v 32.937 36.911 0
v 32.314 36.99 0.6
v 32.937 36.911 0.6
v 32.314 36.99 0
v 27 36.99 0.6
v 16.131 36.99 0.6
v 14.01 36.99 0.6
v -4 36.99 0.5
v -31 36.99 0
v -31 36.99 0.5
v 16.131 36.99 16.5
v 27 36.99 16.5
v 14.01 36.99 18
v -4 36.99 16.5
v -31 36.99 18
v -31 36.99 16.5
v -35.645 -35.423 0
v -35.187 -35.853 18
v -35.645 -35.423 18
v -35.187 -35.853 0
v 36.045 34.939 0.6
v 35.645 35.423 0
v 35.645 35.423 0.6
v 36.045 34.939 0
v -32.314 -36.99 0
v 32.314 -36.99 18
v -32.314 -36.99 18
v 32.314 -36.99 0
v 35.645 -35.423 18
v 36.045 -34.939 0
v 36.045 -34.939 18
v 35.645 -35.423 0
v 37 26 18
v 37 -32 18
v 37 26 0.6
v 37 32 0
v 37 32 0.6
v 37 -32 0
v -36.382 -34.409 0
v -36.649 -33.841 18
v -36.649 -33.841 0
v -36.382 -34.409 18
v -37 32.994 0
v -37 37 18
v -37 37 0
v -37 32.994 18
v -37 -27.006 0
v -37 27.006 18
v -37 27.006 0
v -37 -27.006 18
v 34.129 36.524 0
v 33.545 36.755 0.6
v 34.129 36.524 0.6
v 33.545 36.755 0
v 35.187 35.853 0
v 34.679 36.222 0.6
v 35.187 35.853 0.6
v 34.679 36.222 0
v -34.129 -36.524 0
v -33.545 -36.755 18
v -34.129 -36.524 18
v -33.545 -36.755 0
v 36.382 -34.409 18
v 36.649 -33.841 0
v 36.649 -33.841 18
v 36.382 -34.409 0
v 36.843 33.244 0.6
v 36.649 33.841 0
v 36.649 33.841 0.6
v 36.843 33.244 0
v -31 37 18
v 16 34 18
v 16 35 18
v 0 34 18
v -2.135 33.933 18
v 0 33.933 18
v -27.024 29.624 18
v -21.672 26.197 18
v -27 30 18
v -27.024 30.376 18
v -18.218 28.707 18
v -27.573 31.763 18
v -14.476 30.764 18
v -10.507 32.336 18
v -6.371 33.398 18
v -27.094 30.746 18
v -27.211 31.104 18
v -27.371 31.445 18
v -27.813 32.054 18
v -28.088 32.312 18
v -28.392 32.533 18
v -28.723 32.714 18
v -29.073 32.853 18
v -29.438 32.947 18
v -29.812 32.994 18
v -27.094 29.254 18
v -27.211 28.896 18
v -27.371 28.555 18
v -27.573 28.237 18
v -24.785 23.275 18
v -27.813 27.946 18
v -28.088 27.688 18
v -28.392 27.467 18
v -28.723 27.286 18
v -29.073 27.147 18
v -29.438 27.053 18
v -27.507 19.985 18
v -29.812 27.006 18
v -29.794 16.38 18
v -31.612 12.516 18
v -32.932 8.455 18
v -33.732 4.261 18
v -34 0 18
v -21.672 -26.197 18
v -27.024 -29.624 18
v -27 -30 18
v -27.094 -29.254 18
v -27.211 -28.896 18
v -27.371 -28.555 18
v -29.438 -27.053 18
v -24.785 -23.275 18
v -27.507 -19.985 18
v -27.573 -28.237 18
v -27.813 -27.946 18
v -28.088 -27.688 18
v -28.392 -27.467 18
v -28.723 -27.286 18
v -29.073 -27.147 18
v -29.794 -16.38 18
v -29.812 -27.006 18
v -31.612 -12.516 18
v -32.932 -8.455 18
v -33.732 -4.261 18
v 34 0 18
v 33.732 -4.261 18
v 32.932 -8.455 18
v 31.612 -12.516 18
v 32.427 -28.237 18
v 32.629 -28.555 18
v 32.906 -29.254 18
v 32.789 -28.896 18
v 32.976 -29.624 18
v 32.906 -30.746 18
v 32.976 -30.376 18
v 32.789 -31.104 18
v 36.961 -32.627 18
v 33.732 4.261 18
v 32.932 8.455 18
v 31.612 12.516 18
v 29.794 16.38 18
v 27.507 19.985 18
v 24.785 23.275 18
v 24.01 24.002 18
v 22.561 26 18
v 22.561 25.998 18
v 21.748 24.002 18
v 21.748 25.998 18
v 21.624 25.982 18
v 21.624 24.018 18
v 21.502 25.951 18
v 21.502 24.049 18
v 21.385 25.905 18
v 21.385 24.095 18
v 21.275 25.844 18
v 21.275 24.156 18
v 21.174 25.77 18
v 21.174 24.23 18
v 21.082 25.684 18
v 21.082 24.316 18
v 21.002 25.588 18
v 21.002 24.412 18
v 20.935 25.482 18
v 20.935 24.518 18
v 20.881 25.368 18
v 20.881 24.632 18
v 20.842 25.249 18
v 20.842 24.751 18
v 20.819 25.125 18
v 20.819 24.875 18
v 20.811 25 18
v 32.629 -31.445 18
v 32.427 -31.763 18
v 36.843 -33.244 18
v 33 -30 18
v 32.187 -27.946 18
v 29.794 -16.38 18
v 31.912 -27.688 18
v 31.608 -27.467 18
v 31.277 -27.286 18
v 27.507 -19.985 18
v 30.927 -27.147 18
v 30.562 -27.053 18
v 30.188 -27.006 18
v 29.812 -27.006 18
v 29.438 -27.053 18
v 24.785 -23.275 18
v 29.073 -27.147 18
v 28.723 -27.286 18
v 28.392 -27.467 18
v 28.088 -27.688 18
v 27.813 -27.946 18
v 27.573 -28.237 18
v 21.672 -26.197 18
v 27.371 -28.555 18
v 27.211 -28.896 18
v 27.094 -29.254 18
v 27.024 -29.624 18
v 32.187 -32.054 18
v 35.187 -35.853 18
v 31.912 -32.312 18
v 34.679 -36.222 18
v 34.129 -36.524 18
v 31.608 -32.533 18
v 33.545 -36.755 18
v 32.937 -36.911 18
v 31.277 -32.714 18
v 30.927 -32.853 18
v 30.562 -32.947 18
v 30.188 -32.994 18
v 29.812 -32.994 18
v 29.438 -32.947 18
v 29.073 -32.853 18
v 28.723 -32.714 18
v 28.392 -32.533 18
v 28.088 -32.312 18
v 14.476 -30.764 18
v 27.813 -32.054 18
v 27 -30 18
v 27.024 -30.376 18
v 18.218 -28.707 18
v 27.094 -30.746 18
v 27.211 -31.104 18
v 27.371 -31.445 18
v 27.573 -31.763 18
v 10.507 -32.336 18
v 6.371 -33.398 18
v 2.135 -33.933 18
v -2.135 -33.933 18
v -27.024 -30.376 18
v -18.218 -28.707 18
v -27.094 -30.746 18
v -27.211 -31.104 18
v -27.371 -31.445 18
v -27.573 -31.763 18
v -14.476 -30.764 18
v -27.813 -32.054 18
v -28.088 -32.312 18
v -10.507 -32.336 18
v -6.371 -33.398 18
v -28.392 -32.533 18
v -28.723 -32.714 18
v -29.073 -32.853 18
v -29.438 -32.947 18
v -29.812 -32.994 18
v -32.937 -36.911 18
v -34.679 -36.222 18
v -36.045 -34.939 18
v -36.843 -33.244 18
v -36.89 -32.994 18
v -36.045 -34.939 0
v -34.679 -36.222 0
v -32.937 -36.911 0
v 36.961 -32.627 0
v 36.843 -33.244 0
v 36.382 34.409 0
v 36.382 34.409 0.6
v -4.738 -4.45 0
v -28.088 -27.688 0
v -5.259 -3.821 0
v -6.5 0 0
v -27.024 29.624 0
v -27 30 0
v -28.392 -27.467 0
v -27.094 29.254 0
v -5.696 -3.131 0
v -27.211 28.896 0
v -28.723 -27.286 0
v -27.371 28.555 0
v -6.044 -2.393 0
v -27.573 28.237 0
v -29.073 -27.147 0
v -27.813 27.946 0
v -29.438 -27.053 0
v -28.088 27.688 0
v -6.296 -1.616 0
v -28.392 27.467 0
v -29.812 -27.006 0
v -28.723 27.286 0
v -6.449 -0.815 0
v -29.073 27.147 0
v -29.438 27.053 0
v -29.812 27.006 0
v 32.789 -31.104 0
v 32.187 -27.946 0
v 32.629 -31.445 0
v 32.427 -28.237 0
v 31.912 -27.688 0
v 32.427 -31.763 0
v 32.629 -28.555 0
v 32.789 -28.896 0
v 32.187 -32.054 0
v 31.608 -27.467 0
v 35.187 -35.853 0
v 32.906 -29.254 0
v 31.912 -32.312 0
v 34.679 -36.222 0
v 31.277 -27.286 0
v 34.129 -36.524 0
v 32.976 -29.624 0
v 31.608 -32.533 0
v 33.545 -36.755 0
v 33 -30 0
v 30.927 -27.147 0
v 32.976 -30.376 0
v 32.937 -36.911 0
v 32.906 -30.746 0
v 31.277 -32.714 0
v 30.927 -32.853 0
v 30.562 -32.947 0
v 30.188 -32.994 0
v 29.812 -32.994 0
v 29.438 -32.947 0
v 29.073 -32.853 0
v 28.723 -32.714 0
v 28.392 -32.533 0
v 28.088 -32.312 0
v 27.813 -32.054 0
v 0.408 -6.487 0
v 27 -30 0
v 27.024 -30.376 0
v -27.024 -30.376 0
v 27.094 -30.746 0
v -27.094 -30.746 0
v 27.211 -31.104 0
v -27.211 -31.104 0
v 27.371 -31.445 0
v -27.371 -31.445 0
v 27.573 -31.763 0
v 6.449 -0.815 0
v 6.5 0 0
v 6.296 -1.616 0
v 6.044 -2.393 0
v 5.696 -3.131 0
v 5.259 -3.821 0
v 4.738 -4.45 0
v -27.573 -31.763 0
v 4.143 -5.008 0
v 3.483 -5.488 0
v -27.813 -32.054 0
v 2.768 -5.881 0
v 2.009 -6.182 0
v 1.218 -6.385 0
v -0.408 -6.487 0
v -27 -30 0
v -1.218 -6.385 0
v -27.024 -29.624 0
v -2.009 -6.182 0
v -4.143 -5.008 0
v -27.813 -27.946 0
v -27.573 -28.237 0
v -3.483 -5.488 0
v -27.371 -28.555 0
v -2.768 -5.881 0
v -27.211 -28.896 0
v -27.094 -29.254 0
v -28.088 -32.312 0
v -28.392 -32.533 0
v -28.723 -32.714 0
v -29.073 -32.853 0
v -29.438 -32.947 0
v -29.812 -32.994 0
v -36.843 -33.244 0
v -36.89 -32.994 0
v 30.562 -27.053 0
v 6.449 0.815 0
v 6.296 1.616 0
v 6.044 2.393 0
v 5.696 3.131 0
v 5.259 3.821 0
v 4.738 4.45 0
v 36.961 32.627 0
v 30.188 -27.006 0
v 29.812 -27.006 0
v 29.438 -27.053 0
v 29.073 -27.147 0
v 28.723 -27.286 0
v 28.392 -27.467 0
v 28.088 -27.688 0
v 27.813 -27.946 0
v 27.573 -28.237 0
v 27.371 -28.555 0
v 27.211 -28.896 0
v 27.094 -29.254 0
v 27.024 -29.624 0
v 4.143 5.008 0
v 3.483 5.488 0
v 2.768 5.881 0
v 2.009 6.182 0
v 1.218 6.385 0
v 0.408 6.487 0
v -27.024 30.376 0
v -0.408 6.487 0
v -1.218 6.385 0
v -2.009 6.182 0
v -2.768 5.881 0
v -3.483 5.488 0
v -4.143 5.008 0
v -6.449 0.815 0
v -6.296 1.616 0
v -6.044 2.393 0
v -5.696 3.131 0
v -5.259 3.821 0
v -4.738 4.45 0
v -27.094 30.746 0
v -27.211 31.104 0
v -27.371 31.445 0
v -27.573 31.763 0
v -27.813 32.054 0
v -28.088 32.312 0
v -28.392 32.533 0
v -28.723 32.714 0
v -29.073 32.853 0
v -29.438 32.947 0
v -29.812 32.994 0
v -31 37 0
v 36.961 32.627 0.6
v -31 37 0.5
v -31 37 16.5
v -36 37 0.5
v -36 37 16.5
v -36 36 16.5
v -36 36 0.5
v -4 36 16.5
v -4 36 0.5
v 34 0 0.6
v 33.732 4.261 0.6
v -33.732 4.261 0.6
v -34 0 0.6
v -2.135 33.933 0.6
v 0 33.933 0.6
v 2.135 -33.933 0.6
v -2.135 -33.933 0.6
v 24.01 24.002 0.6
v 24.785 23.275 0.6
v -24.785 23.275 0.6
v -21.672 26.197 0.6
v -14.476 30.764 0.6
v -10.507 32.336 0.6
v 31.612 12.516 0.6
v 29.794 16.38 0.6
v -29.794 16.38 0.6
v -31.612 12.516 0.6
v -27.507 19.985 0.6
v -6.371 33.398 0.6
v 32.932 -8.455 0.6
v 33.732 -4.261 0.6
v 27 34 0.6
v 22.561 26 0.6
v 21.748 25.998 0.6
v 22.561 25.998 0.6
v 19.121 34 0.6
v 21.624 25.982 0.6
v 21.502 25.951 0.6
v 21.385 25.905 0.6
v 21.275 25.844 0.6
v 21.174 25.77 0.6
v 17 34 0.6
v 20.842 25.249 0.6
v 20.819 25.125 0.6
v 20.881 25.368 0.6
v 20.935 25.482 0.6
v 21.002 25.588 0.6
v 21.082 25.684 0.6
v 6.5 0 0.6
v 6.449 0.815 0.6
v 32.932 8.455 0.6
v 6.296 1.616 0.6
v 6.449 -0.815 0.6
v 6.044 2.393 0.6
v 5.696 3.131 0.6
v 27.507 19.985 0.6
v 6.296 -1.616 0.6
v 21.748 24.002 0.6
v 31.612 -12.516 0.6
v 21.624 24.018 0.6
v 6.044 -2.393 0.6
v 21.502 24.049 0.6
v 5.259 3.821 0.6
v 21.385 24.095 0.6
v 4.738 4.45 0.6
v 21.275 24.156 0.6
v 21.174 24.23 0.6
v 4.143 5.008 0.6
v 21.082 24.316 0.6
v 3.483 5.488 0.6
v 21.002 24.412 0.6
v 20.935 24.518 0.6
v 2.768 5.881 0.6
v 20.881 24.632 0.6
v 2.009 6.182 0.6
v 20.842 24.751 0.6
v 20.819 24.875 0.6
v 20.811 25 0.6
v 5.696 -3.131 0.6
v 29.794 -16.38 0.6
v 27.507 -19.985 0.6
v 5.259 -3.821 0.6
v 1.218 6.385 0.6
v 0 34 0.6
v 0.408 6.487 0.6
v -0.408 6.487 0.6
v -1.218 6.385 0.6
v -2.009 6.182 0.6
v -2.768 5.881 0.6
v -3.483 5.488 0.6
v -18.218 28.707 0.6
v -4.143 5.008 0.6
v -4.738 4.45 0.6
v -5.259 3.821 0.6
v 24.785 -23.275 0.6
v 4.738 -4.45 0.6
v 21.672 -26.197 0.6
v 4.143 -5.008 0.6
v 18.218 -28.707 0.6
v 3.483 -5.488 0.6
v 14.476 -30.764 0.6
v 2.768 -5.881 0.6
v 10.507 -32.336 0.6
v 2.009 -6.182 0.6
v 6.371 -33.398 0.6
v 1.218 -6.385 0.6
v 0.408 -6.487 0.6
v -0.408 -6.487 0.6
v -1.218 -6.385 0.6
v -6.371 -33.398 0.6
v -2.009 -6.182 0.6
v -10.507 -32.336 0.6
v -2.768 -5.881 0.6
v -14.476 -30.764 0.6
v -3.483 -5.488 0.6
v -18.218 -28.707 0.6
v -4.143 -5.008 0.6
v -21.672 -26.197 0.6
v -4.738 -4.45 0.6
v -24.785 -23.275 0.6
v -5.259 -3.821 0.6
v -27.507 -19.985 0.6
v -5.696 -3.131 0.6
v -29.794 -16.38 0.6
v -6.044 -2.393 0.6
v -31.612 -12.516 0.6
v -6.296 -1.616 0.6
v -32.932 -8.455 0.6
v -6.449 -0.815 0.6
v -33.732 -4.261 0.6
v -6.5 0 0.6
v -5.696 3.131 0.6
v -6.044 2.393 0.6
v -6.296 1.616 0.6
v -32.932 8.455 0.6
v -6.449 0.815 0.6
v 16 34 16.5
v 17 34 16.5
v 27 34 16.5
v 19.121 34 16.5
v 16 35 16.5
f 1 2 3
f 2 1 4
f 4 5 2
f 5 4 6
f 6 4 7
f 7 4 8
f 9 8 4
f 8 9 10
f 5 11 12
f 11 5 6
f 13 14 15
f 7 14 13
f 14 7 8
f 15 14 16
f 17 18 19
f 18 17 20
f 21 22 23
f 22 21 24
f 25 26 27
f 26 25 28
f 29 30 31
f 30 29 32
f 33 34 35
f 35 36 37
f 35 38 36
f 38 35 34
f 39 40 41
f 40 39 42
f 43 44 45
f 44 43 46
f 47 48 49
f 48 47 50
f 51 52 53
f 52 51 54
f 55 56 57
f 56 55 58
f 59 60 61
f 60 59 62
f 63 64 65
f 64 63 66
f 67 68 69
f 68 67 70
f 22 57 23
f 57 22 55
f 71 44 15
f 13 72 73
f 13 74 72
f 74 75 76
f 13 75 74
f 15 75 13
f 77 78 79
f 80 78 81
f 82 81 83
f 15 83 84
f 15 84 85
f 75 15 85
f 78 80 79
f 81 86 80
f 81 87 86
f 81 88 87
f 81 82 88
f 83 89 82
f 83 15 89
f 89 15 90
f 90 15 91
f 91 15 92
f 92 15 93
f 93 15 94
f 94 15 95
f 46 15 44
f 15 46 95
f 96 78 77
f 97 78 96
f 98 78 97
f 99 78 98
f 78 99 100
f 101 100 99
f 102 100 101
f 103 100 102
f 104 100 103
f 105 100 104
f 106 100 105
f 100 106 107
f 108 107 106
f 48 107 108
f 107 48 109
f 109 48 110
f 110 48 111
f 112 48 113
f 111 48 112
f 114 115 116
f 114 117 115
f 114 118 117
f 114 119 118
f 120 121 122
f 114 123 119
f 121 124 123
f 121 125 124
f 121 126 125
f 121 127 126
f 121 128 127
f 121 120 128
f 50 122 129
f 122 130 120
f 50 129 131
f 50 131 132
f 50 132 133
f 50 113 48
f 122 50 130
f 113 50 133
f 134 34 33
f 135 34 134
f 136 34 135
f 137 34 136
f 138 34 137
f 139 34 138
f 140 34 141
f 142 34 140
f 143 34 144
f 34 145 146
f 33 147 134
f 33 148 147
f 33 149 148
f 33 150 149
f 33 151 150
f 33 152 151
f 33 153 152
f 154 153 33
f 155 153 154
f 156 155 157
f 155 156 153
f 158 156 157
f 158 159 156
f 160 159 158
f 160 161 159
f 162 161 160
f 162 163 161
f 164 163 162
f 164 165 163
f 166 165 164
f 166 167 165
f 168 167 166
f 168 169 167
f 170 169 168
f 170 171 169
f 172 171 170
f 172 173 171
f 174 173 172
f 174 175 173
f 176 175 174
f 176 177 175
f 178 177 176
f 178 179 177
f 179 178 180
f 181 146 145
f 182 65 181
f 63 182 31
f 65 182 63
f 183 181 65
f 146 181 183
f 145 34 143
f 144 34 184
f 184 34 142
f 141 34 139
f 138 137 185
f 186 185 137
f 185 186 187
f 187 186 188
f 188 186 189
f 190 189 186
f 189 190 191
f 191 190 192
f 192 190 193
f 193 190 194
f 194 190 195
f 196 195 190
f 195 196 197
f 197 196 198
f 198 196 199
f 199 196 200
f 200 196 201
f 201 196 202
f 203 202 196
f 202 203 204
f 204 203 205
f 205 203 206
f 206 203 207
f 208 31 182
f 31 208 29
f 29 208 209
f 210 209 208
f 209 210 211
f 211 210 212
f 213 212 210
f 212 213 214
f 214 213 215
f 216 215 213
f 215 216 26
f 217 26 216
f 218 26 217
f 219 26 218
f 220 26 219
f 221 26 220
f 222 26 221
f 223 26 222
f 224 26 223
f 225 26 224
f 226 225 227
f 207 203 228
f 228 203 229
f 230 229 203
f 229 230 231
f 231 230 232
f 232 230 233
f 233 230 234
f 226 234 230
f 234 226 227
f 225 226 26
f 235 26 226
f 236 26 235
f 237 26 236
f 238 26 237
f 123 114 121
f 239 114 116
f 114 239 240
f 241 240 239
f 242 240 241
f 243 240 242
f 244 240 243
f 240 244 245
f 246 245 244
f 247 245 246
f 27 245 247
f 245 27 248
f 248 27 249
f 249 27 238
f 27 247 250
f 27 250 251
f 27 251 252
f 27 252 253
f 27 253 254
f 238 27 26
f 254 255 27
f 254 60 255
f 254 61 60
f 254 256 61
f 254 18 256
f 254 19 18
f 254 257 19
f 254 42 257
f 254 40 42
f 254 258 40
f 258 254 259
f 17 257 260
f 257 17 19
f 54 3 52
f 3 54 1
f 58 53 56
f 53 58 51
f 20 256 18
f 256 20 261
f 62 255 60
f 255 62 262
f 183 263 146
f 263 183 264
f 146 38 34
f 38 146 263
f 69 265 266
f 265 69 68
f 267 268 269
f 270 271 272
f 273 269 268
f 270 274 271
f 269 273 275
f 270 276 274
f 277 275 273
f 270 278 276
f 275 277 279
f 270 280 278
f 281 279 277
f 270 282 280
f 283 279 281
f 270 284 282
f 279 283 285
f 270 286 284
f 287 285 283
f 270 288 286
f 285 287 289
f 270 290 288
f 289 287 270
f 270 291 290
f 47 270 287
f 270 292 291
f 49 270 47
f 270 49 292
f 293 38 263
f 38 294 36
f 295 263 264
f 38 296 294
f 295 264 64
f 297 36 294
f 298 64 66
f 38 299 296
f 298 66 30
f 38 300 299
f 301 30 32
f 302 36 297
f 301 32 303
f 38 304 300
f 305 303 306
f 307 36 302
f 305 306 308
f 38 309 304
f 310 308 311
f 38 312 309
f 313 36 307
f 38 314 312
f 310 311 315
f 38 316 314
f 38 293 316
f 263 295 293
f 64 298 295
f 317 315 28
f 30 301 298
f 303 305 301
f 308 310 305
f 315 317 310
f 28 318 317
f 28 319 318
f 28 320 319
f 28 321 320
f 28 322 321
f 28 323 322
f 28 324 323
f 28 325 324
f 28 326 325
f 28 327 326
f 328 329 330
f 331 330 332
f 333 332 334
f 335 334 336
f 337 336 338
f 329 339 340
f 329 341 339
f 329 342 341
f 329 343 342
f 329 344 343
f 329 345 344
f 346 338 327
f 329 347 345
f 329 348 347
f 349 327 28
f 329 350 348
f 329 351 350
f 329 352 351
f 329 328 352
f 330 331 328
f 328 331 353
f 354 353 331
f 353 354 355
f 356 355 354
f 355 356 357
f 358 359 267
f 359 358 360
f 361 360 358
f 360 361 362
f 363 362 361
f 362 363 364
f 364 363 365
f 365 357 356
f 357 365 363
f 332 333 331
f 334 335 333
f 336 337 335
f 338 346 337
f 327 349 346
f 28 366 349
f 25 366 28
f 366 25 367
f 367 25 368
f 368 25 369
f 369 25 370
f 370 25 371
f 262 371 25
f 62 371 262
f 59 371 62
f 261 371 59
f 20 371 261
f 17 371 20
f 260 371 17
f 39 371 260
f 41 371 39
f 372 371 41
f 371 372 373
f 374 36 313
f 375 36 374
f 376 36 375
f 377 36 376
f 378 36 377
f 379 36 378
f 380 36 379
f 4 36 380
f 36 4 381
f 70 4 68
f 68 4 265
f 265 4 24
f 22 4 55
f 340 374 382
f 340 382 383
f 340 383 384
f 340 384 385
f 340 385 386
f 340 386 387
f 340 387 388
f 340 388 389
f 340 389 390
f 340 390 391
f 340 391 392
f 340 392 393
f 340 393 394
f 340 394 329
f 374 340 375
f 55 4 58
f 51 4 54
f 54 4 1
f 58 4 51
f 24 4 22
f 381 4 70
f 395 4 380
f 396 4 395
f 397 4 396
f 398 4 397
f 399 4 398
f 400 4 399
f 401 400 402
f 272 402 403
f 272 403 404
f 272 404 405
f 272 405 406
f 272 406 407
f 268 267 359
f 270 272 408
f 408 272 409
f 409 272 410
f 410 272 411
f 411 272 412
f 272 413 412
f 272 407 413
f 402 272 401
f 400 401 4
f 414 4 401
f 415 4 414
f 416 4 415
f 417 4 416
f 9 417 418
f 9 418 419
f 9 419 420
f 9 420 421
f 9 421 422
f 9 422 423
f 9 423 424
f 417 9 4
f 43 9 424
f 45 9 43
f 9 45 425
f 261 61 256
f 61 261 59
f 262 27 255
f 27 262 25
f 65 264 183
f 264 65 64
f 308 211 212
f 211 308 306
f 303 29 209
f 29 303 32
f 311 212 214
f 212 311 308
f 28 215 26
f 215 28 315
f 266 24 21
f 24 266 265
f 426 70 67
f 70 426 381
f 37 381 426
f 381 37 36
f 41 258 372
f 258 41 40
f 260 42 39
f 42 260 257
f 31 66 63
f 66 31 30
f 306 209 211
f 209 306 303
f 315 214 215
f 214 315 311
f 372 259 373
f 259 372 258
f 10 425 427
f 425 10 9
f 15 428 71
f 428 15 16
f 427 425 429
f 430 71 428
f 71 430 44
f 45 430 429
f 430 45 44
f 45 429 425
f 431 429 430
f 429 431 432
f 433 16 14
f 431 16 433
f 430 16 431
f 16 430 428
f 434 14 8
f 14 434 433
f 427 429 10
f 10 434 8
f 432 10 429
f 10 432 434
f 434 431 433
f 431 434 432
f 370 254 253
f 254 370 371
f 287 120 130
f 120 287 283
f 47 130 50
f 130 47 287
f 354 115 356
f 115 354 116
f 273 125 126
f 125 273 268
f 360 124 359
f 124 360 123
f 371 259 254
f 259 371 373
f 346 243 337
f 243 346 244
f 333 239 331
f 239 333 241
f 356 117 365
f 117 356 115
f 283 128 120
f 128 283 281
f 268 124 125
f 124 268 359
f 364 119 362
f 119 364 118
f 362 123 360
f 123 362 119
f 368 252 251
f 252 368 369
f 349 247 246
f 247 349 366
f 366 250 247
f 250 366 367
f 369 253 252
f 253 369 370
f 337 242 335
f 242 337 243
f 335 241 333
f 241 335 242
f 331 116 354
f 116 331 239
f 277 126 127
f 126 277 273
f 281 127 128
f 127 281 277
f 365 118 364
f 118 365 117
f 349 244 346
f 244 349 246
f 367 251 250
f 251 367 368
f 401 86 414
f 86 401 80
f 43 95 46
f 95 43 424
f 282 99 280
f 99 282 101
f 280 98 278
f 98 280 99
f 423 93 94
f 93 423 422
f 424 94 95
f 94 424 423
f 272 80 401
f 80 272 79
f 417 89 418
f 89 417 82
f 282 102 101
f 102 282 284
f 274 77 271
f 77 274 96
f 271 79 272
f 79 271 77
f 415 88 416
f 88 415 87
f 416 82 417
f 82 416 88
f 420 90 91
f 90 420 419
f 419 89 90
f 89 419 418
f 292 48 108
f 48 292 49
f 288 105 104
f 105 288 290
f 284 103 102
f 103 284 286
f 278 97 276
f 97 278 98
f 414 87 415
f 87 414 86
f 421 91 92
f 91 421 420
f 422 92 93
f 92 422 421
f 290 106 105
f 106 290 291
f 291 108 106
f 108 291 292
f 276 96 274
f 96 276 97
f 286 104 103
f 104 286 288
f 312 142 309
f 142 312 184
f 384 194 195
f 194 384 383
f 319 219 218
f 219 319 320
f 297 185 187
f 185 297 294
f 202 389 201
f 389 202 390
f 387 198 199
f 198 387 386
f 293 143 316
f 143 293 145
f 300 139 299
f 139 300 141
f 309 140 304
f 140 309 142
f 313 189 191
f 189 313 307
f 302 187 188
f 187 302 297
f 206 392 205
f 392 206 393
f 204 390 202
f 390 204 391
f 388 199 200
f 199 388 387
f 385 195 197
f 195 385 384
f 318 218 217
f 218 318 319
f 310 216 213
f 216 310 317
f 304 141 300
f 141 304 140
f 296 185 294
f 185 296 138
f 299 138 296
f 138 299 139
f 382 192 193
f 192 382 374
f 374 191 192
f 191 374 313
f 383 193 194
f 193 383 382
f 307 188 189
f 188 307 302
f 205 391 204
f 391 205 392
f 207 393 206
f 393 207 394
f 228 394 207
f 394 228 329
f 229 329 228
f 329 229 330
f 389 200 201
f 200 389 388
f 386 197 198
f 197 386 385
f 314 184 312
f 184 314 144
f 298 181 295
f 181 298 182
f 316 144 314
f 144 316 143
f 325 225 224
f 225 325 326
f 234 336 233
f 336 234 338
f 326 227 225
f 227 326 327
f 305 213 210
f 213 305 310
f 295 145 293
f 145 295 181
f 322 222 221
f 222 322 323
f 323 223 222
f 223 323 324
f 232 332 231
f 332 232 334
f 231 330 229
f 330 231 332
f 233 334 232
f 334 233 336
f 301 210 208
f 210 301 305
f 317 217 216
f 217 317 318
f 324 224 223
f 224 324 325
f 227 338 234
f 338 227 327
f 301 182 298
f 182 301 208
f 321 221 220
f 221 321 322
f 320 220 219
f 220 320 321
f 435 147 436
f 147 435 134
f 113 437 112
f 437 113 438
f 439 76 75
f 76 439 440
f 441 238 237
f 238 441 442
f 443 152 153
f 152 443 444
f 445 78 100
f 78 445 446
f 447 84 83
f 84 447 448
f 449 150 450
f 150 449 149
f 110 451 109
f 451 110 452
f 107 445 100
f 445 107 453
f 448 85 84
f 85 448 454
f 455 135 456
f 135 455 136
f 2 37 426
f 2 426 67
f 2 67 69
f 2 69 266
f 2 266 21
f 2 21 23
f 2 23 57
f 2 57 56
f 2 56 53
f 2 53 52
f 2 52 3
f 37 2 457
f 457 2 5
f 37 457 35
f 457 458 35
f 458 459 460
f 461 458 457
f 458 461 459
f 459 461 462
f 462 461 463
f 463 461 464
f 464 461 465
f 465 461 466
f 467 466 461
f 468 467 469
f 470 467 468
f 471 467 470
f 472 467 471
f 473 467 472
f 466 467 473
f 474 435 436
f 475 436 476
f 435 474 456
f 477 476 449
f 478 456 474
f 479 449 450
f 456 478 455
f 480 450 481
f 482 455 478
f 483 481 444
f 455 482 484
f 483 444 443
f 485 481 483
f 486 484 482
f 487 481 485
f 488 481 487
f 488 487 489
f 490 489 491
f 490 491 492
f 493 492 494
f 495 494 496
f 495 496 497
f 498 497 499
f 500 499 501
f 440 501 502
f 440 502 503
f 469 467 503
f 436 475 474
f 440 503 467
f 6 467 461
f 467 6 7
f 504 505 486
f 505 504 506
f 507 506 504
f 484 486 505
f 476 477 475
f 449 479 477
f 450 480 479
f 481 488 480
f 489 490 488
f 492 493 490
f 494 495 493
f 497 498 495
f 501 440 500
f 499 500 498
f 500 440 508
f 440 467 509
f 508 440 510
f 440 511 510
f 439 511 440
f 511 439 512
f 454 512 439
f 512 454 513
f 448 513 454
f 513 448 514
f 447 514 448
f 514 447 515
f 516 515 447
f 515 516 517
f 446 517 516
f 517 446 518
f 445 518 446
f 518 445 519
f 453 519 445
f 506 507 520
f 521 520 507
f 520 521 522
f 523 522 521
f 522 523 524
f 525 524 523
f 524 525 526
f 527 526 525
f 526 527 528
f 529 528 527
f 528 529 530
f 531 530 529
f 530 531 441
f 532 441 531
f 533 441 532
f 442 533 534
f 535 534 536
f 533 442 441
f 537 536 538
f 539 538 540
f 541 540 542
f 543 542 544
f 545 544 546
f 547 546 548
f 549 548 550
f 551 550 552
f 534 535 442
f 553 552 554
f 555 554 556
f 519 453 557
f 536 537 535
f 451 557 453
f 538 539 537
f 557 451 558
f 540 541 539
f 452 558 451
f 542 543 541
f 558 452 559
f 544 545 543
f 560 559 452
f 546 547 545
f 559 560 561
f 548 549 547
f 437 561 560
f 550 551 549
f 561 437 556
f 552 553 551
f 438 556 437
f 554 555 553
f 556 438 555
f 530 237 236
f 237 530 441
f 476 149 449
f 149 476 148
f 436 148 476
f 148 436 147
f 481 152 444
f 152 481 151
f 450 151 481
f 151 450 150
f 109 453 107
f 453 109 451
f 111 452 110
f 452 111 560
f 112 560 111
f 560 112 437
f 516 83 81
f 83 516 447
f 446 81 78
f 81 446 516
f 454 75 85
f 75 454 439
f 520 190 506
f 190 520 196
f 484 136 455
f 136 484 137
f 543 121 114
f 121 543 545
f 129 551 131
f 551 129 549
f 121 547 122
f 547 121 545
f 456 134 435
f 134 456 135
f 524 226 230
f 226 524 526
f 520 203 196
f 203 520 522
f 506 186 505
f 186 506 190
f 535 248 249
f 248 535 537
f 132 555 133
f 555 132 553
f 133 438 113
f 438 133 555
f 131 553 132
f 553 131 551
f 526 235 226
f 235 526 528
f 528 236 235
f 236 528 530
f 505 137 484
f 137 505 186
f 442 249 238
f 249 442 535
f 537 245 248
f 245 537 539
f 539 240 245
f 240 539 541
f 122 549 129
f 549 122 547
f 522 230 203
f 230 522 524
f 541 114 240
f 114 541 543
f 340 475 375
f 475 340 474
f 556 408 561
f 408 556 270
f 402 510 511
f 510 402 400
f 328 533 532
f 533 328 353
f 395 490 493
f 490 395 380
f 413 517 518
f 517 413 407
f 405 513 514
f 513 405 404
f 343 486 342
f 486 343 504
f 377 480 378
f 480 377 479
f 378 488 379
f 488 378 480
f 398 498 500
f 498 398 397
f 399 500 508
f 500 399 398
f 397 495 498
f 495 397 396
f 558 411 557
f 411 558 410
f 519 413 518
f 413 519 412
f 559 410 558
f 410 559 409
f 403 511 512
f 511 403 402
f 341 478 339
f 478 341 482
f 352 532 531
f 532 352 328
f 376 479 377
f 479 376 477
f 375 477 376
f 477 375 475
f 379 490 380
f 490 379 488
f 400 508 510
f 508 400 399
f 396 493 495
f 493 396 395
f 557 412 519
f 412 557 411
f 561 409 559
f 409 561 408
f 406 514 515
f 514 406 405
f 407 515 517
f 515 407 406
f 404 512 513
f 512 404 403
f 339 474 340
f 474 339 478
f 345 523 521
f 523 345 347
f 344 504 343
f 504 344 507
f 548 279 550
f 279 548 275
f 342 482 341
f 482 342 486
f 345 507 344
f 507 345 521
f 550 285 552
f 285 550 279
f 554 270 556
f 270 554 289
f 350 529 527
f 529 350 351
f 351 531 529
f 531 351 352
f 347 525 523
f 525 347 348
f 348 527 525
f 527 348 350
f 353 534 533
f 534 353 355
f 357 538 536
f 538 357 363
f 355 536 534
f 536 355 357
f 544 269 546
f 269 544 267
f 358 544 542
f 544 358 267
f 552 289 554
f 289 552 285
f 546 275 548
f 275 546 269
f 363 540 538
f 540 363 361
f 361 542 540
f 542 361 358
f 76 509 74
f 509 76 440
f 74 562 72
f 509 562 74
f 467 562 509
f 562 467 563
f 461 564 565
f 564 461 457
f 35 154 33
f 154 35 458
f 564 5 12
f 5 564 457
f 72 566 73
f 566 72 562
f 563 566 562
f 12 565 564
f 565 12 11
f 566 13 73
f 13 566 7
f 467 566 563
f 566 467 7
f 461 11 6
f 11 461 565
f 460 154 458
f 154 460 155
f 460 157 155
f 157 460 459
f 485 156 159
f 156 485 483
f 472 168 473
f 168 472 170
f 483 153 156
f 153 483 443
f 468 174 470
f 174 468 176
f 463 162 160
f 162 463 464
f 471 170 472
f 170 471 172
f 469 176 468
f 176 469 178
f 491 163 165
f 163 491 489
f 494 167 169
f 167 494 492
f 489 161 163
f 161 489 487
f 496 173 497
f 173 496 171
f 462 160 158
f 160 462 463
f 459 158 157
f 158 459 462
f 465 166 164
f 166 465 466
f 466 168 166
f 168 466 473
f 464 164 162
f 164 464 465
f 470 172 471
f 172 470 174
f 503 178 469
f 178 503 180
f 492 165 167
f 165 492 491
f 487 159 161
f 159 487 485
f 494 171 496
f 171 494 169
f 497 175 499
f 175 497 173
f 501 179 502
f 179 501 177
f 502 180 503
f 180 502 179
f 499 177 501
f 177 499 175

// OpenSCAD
$fn = 50;


union() {
	difference() {
		union() {
			translate(v = [0, 0, 0]) {
				rotate(a = [0, 0, 0]) {
					hull() {
						translate(v = [-32.0000000000, 32.0000000000, 0]) {
							rotate(a = [0, 0, 0]) {
								translate(v = [0, 0, 0]) {
									rotate(a = [0, 0, 0]) {
										cylinder(h = 18, r = 5);
									}
								}
							}
						}
						translate(v = [32.0000000000, 32.0000000000, 0]) {
							rotate(a = [0, 0, 0]) {
								translate(v = [0, 0, 0]) {
									rotate(a = [0, 0, 0]) {
										cylinder(h = 18, r = 5);
									}
								}
							}
						}
						translate(v = [-32.0000000000, -32.0000000000, 0]) {
							rotate(a = [0, 0, 0]) {
								translate(v = [0, 0, 0]) {
									rotate(a = [0, 0, 0]) {
										cylinder(h = 18, r = 5);
									}
								}
							}
						}
						translate(v = [32.0000000000, -32.0000000000, 0]) {
							rotate(a = [0, 0, 0]) {
								translate(v = [0, 0, 0]) {
									rotate(a = [0, 0, 0]) {
										cylinder(h = 18, r = 5);
									}
								}
							}
						}
					}
				}
			}
			translate(v = [-37.0000000000, 31.0000000000, 0]) {
				rotate(a = [0, 0, 0]) {
					cube(size = [6, 6, 18]);
				}
			}
		}
		union() {
			translate(v = [-36.0000000000, 36.0000000000, 0.5000000000]) {
				rotate(a = [0, 0, 0]) {
					cube(size = [32, 1, 16]);
				}
			}
			translate(v = [-37.5000000000, -30.0000000000, -125]) {
				rotate(a = [0, 0, 0]) {
					hull() {
						translate(v = [7.5000000000, 0, 0]) {
							rotate(a = [0, 0, 0]) {
								translate(v = [0, 0, 0]) {
									rotate(a = [0, 0, 0]) {
										cylinder(h = 250, r = 3.0000000000);
									}
								}
							}
						}
						translate(v = [-7.5000000000, 0, 0]) {
							rotate(a = [0, 0, 0]) {
								translate(v = [0, 0, 0]) {
									rotate(a = [0, 0, 0]) {
										cylinder(h = 250, r = 3.0000000000);
									}
								}
							}
						}
					}
				}
			}
			translate(v = [-37.5000000000, 30.0000000000, -125]) {
				rotate(a = [0, 0, 0]) {
					hull() {
						translate(v = [7.5000000000, 0, 0]) {
							rotate(a = [0, 0, 0]) {
								translate(v = [0, 0, 0]) {
									rotate(a = [0, 0, 0]) {
										cylinder(h = 250, r = 3.0000000000);
									}
								}
							}
						}
						translate(v = [-7.5000000000, 0, 0]) {
							rotate(a = [0, 0, 0]) {
								translate(v = [0, 0, 0]) {
									rotate(a = [0, 0, 0]) {
										cylinder(h = 250, r = 3.0000000000);
									}
								}
							}
						}
					}
				}
			}
			translate(v = [30.0000000000, -30.0000000000, -125.0000000000]) {
				rotate(a = [0, 0, 0]) {
					cylinder(h = 250, r = 3.0000000000);
				}
			}
			translate(v = [0, 0, 0.6000000000]) {
				rotate(a = [0, 0, 0]) {
					cylinder(h = 20.4000000000, r = 34.0000000000);
				}
			}
			translate(v = [0, 0, -9.0000000000]) {
				rotate(a = [0, 0, 0]) {
					cylinder(h = 18, r = 6.5000000000);
				}
			}
			translate(v = [0.0000000000, 26.0000000000, 0.6000000000]) {
				rotate(a = [0, 0, 0]) {
					cube(size = [37.0000000000, 8, 20.4000000000]);
				}
			}
			translate(v = [27.0000000000, 26.0000000000, 0.6000000000]) {
				rotate(a = [0, 0, 0]) {
					cube(size = [10, 11, 20.4000000000]);
				}
			}
			translate(v = [16.0000000000, 26.0000000000, 16.5000000000]) {
				rotate(a = [0, 0, 0]) {
					cube(size = [21, 11, 1.5000000000]);
				}
			}
			translate(v = [13.2500000000, 37.7500000000, 0.6000000000]) {
				rotate(a = [0, 0, -45]) {
					cube(size = [7.5000000000, 1.5000000000, 20.4000000000]);
				}
			}
			translate(v = [15.0610000000, 24.0000000000, 0.6000000000]) {
				rotate(a = [0, 0, 0]) {
					cube(size = [7.5000000000, 2, 17.4000000000]);
				}
			}
		}
	}
	union() {
		translate(v = [24.3110000000, 25.0000000000, 0]) {
			rotate(a = [0, 0, 0]) {
				hull() {
					translate(v = [2.5000000000, 0, 0]) {
						rotate(a = [0, 0, 0]) {
							#translate(v = [0, 0, 0]) {
								rotate(a = [0, 0, 0]) {
									cylinder(h = 18, r = 1.0000000000);
								}
							}
						}
					}
					translate(v = [-2.5000000000, 0, 0]) {
						rotate(a = [0, 0, 0]) {
							#translate(v = [0, 0, 0]) {
								rotate(a = [0, 0, 0]) {
									cylinder(h = 18, r = 1.0000000000);
								}
							}
						}
					}
				}
			}
		}
	}
}
